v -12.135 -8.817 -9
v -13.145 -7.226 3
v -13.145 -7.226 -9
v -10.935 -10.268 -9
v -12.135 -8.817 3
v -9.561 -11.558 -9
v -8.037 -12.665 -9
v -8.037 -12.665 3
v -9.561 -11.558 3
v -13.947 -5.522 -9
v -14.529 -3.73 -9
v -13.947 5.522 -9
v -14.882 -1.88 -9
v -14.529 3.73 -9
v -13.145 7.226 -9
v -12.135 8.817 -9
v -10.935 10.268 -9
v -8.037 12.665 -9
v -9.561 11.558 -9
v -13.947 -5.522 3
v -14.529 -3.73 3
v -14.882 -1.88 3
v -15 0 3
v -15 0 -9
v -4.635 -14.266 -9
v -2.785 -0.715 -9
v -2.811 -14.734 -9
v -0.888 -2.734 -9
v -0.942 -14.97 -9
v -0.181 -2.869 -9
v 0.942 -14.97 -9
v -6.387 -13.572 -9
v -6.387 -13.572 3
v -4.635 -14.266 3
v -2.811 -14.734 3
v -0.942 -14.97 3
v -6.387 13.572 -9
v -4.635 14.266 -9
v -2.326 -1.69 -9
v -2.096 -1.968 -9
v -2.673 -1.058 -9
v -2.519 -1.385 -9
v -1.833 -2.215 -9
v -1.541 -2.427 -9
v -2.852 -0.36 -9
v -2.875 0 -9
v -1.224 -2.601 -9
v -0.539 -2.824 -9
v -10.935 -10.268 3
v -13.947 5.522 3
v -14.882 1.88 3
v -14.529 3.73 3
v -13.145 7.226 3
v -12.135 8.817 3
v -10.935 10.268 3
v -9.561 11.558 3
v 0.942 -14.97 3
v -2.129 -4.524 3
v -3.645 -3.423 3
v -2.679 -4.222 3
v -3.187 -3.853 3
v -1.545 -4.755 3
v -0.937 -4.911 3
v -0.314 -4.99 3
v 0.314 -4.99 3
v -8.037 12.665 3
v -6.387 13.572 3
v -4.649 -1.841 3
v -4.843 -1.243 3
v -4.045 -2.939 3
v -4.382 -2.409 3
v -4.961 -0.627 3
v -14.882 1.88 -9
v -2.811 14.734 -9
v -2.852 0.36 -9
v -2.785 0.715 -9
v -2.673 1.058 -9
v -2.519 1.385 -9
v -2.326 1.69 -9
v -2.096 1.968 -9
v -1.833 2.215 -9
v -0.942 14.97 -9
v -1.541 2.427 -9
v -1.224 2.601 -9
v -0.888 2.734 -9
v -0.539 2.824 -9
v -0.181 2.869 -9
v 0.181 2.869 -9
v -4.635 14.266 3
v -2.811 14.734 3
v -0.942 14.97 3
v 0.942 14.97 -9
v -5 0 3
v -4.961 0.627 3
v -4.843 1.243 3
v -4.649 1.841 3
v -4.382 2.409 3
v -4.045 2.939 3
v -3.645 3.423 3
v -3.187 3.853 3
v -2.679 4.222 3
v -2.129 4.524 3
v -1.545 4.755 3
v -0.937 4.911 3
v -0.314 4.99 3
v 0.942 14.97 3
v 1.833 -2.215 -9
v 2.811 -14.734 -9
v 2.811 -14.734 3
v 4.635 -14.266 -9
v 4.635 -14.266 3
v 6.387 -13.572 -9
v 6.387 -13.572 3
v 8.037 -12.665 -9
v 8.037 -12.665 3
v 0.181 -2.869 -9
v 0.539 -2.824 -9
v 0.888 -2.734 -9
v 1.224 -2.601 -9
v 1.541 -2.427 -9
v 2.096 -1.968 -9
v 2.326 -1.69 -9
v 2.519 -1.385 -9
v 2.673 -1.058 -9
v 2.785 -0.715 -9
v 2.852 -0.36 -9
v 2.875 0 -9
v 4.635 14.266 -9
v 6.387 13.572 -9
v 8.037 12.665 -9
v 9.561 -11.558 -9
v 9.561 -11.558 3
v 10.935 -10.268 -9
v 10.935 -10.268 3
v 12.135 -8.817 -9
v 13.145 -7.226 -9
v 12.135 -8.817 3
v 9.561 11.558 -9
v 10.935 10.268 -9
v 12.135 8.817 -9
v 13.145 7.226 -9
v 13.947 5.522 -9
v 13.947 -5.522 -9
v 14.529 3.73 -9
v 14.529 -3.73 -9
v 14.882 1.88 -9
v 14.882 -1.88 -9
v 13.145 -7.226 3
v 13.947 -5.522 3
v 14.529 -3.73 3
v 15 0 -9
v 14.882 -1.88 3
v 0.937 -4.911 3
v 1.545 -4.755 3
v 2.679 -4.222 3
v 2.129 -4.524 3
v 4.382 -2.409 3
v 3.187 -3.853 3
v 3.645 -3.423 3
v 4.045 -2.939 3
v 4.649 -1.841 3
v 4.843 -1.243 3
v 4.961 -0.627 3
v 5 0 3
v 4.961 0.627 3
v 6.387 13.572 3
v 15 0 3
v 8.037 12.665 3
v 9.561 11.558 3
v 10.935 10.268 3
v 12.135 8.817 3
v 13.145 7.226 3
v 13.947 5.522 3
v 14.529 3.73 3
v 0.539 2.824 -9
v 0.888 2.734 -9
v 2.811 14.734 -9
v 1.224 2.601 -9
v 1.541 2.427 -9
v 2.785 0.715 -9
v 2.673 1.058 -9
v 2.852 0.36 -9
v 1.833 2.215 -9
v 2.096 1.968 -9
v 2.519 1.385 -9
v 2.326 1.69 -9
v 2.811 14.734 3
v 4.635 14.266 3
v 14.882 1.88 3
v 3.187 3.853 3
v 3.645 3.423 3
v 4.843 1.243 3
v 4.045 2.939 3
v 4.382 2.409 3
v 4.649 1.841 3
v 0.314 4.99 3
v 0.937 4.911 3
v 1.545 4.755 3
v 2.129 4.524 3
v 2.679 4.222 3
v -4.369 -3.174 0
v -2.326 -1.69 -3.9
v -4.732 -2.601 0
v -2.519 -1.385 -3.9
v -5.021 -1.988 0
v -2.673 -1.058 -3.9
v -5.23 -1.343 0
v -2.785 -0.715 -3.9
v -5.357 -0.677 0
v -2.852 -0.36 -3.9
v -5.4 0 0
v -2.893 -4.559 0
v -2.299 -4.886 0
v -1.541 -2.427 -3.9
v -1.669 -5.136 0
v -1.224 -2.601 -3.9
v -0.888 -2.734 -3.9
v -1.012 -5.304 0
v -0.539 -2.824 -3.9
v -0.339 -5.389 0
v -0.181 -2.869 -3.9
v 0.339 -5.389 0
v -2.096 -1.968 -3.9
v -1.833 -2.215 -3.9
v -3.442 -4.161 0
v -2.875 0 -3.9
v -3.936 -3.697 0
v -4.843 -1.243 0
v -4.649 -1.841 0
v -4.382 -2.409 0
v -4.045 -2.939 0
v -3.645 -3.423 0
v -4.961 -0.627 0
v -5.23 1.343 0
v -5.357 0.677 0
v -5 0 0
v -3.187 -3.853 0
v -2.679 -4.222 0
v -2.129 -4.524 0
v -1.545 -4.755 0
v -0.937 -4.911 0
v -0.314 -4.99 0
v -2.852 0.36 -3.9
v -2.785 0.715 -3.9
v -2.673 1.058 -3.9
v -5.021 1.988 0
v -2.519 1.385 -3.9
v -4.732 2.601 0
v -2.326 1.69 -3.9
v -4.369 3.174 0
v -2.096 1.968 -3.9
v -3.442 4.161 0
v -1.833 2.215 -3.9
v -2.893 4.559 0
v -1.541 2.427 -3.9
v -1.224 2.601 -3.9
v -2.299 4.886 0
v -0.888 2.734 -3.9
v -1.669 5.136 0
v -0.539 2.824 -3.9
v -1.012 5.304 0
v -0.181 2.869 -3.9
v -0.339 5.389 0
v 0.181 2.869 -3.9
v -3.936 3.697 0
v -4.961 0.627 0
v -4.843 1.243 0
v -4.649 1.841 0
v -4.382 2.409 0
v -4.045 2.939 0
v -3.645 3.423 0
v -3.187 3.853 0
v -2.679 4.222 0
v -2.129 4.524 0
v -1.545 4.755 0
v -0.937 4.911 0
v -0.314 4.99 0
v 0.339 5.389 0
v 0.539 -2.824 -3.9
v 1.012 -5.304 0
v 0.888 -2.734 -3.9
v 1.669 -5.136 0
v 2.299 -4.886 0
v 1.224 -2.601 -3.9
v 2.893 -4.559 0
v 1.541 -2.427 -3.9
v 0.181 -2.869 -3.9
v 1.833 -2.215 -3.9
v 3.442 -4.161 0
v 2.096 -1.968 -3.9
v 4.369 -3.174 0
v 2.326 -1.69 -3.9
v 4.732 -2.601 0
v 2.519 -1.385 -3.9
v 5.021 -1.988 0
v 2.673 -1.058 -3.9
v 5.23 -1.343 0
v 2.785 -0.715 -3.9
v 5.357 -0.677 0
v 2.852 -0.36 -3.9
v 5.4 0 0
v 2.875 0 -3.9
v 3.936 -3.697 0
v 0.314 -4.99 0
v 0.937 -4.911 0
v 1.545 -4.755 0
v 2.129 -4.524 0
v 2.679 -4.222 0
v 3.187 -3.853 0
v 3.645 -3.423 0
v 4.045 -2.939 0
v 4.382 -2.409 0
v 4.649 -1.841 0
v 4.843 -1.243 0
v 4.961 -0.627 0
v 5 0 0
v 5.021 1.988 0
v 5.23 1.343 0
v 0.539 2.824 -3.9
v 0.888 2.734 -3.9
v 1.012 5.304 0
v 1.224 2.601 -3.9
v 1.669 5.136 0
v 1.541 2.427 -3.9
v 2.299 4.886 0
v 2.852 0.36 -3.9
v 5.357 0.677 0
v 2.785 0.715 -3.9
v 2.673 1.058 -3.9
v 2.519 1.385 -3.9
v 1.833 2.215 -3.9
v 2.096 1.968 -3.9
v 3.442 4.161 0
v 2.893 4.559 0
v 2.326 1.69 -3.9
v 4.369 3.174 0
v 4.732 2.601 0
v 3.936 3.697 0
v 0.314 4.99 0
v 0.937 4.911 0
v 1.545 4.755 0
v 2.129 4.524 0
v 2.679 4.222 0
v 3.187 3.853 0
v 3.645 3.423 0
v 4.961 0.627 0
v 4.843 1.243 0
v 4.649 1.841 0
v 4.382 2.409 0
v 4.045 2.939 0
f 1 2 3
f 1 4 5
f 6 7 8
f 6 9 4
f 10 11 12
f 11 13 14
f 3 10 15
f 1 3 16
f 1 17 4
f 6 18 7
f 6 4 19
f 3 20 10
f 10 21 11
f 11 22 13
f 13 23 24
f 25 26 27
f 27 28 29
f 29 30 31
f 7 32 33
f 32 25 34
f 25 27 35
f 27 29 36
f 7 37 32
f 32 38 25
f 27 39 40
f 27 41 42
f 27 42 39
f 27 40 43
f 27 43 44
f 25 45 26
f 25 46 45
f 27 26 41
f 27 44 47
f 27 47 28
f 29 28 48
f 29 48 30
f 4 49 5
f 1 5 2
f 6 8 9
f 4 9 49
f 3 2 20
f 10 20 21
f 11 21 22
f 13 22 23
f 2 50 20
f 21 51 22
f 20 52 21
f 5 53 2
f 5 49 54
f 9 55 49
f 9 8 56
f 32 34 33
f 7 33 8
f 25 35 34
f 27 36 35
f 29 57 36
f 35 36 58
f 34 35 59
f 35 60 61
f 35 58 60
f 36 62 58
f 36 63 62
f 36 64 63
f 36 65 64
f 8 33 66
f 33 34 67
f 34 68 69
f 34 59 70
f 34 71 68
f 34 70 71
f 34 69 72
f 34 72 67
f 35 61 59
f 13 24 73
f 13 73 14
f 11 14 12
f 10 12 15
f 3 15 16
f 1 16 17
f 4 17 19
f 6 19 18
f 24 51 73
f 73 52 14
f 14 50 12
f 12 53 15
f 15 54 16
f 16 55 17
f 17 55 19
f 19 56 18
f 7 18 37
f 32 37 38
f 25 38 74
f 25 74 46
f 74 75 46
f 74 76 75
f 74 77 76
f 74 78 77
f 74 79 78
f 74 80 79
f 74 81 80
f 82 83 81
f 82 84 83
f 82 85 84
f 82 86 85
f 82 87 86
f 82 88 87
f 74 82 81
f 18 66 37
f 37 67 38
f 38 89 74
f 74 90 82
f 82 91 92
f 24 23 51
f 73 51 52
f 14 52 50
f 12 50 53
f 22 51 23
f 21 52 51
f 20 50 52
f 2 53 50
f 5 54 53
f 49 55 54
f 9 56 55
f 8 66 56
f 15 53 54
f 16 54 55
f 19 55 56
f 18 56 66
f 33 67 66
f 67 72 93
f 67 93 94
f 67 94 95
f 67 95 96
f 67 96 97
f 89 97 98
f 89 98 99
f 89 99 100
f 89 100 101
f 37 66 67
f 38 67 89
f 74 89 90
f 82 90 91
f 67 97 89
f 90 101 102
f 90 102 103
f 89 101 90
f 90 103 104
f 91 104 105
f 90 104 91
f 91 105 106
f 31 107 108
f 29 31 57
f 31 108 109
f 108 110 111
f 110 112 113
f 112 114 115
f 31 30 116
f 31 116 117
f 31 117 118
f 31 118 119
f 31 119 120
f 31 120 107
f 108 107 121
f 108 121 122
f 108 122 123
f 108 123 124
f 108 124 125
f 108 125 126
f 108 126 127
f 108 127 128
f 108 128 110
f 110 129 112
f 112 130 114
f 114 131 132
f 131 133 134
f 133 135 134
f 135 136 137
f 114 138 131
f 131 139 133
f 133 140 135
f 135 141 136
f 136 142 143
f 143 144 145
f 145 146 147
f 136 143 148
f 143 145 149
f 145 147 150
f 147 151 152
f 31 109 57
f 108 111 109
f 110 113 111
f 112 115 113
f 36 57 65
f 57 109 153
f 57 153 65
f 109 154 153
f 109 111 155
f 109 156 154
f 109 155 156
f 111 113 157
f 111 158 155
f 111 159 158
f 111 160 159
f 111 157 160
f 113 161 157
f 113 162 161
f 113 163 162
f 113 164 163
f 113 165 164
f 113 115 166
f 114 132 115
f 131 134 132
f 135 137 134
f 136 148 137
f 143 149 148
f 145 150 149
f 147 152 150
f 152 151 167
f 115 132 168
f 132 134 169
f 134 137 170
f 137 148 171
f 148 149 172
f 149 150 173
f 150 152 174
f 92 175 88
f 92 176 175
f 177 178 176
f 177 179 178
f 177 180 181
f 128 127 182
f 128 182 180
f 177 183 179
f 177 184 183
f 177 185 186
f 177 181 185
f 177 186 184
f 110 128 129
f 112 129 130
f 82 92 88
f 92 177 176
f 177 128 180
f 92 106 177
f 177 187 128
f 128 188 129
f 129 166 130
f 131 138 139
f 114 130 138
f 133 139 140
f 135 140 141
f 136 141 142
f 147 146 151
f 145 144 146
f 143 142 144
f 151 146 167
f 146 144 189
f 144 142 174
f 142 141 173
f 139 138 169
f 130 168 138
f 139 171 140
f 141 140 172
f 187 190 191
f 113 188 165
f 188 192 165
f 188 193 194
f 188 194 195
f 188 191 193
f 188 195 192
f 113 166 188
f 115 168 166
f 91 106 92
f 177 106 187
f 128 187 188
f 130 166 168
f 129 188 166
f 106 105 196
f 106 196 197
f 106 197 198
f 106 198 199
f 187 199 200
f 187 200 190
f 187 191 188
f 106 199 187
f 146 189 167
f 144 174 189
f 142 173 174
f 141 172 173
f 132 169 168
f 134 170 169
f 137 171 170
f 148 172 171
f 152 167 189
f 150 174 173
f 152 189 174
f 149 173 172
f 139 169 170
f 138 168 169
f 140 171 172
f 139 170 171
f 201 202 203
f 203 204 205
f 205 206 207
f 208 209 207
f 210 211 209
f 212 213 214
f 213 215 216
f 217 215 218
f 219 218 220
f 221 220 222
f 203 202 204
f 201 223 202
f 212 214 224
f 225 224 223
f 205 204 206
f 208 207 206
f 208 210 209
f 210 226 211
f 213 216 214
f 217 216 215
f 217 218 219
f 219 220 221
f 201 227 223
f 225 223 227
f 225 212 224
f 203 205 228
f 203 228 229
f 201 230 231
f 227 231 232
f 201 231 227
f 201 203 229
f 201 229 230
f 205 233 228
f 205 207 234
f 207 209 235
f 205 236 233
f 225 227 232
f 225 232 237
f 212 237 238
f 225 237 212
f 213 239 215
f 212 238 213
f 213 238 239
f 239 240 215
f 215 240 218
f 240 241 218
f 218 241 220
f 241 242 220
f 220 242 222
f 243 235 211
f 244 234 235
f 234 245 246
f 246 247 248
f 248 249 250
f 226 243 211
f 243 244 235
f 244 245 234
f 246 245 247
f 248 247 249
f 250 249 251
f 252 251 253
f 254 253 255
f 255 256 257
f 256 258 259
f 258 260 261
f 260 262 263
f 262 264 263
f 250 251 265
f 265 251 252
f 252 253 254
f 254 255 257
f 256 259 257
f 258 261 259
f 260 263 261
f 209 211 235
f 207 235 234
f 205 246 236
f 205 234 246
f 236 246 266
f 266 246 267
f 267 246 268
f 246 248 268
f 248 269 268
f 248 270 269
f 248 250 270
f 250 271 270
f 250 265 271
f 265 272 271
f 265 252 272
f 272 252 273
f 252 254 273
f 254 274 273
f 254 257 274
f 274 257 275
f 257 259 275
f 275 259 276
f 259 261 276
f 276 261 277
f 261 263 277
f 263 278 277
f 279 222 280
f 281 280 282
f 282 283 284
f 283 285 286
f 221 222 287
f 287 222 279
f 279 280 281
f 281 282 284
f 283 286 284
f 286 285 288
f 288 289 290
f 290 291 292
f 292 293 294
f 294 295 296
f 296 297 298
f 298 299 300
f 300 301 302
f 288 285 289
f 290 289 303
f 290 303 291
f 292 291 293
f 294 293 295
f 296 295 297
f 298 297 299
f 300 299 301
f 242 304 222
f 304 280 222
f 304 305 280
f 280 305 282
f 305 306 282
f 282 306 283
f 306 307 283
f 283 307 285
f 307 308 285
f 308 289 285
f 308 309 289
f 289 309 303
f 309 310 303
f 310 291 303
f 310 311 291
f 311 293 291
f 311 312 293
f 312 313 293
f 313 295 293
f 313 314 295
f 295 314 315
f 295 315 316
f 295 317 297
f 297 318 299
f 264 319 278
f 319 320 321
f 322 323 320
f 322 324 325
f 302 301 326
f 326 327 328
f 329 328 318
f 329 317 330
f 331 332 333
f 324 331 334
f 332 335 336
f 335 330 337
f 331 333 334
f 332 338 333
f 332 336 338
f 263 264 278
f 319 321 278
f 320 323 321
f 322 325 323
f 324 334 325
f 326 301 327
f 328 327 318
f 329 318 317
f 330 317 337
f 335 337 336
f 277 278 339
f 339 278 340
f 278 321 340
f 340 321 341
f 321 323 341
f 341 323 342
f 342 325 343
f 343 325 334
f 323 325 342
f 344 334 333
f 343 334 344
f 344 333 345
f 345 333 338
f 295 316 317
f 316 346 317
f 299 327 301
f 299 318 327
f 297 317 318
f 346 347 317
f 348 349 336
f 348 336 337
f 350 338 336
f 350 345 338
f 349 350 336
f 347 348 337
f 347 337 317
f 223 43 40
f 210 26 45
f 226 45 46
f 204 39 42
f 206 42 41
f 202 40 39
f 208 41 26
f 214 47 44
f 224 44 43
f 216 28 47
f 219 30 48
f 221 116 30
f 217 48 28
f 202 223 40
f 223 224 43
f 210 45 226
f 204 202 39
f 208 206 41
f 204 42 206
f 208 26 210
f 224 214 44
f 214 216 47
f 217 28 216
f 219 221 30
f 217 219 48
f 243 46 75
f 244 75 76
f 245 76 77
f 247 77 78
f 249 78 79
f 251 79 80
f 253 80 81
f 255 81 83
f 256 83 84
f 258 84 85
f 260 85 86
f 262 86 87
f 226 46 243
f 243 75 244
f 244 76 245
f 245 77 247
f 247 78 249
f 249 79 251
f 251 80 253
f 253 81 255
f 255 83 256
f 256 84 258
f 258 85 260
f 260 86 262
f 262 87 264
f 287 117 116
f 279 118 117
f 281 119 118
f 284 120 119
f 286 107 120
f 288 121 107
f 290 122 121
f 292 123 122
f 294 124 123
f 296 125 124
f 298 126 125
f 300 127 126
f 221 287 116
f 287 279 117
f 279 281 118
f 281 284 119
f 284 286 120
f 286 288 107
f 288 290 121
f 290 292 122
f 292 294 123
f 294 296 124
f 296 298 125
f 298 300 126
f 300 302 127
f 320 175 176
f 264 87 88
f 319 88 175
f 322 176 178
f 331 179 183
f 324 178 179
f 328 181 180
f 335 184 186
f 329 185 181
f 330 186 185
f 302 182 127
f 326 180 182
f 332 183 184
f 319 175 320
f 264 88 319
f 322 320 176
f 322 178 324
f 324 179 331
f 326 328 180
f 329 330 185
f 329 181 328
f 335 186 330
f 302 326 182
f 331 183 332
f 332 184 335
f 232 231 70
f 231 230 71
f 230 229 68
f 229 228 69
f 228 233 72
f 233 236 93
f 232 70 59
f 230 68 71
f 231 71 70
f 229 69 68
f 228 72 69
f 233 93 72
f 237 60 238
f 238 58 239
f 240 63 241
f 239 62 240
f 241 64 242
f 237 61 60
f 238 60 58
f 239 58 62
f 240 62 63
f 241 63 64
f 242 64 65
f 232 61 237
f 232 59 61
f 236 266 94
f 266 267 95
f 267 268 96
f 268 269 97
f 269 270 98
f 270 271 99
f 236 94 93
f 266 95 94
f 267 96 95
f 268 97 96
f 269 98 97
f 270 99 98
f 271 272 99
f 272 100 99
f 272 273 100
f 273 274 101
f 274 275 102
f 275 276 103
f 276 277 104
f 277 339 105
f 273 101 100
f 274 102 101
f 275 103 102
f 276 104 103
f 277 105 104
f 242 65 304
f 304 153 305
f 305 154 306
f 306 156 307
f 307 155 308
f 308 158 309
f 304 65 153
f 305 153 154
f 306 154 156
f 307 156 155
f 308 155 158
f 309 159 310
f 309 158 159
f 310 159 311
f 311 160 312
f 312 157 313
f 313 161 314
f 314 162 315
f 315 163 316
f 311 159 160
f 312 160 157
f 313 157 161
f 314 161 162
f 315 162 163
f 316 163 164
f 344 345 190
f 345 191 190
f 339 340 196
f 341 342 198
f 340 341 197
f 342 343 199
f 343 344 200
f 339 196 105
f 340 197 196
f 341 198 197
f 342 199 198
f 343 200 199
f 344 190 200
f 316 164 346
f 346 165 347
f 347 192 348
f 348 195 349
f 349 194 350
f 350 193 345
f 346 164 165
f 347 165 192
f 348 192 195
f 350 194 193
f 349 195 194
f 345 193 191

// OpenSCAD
$fn = 50;

difference() {
	union() {
		translate(v = [0, 0, -9.0]) {
			cylinder(h = 12, r = 15.0);
		}
		#translate(v = [0, 0, -12.0]) {
			cylinder(h = 12, r = 2.875);
		}
	}
	union() {
		translate(v = [0, 0, 0]) {
			rotate(a = [0, 0, 0]) {
				difference() {
					union() {
						translate(v = [0, 0, -12.0]) {
							cylinder(h = 12, r = 2.6);
						}
						translate(v = [0, 0, -3.9]) {
							cylinder(h = 3.9, r1 = 2.875, r2 = 5.4);
						}
						translate(v = [0, 0, -12.0]) {
							cylinder(h = 12, r = 2.875);
						}
						translate(v = [0, 0, -12.0]) {
							cylinder(h = 12, r = 2.6);
						}
					}
					union();
				}
			}
		}
		#cylinder(h = 3, r = 5.0);
	}
}
